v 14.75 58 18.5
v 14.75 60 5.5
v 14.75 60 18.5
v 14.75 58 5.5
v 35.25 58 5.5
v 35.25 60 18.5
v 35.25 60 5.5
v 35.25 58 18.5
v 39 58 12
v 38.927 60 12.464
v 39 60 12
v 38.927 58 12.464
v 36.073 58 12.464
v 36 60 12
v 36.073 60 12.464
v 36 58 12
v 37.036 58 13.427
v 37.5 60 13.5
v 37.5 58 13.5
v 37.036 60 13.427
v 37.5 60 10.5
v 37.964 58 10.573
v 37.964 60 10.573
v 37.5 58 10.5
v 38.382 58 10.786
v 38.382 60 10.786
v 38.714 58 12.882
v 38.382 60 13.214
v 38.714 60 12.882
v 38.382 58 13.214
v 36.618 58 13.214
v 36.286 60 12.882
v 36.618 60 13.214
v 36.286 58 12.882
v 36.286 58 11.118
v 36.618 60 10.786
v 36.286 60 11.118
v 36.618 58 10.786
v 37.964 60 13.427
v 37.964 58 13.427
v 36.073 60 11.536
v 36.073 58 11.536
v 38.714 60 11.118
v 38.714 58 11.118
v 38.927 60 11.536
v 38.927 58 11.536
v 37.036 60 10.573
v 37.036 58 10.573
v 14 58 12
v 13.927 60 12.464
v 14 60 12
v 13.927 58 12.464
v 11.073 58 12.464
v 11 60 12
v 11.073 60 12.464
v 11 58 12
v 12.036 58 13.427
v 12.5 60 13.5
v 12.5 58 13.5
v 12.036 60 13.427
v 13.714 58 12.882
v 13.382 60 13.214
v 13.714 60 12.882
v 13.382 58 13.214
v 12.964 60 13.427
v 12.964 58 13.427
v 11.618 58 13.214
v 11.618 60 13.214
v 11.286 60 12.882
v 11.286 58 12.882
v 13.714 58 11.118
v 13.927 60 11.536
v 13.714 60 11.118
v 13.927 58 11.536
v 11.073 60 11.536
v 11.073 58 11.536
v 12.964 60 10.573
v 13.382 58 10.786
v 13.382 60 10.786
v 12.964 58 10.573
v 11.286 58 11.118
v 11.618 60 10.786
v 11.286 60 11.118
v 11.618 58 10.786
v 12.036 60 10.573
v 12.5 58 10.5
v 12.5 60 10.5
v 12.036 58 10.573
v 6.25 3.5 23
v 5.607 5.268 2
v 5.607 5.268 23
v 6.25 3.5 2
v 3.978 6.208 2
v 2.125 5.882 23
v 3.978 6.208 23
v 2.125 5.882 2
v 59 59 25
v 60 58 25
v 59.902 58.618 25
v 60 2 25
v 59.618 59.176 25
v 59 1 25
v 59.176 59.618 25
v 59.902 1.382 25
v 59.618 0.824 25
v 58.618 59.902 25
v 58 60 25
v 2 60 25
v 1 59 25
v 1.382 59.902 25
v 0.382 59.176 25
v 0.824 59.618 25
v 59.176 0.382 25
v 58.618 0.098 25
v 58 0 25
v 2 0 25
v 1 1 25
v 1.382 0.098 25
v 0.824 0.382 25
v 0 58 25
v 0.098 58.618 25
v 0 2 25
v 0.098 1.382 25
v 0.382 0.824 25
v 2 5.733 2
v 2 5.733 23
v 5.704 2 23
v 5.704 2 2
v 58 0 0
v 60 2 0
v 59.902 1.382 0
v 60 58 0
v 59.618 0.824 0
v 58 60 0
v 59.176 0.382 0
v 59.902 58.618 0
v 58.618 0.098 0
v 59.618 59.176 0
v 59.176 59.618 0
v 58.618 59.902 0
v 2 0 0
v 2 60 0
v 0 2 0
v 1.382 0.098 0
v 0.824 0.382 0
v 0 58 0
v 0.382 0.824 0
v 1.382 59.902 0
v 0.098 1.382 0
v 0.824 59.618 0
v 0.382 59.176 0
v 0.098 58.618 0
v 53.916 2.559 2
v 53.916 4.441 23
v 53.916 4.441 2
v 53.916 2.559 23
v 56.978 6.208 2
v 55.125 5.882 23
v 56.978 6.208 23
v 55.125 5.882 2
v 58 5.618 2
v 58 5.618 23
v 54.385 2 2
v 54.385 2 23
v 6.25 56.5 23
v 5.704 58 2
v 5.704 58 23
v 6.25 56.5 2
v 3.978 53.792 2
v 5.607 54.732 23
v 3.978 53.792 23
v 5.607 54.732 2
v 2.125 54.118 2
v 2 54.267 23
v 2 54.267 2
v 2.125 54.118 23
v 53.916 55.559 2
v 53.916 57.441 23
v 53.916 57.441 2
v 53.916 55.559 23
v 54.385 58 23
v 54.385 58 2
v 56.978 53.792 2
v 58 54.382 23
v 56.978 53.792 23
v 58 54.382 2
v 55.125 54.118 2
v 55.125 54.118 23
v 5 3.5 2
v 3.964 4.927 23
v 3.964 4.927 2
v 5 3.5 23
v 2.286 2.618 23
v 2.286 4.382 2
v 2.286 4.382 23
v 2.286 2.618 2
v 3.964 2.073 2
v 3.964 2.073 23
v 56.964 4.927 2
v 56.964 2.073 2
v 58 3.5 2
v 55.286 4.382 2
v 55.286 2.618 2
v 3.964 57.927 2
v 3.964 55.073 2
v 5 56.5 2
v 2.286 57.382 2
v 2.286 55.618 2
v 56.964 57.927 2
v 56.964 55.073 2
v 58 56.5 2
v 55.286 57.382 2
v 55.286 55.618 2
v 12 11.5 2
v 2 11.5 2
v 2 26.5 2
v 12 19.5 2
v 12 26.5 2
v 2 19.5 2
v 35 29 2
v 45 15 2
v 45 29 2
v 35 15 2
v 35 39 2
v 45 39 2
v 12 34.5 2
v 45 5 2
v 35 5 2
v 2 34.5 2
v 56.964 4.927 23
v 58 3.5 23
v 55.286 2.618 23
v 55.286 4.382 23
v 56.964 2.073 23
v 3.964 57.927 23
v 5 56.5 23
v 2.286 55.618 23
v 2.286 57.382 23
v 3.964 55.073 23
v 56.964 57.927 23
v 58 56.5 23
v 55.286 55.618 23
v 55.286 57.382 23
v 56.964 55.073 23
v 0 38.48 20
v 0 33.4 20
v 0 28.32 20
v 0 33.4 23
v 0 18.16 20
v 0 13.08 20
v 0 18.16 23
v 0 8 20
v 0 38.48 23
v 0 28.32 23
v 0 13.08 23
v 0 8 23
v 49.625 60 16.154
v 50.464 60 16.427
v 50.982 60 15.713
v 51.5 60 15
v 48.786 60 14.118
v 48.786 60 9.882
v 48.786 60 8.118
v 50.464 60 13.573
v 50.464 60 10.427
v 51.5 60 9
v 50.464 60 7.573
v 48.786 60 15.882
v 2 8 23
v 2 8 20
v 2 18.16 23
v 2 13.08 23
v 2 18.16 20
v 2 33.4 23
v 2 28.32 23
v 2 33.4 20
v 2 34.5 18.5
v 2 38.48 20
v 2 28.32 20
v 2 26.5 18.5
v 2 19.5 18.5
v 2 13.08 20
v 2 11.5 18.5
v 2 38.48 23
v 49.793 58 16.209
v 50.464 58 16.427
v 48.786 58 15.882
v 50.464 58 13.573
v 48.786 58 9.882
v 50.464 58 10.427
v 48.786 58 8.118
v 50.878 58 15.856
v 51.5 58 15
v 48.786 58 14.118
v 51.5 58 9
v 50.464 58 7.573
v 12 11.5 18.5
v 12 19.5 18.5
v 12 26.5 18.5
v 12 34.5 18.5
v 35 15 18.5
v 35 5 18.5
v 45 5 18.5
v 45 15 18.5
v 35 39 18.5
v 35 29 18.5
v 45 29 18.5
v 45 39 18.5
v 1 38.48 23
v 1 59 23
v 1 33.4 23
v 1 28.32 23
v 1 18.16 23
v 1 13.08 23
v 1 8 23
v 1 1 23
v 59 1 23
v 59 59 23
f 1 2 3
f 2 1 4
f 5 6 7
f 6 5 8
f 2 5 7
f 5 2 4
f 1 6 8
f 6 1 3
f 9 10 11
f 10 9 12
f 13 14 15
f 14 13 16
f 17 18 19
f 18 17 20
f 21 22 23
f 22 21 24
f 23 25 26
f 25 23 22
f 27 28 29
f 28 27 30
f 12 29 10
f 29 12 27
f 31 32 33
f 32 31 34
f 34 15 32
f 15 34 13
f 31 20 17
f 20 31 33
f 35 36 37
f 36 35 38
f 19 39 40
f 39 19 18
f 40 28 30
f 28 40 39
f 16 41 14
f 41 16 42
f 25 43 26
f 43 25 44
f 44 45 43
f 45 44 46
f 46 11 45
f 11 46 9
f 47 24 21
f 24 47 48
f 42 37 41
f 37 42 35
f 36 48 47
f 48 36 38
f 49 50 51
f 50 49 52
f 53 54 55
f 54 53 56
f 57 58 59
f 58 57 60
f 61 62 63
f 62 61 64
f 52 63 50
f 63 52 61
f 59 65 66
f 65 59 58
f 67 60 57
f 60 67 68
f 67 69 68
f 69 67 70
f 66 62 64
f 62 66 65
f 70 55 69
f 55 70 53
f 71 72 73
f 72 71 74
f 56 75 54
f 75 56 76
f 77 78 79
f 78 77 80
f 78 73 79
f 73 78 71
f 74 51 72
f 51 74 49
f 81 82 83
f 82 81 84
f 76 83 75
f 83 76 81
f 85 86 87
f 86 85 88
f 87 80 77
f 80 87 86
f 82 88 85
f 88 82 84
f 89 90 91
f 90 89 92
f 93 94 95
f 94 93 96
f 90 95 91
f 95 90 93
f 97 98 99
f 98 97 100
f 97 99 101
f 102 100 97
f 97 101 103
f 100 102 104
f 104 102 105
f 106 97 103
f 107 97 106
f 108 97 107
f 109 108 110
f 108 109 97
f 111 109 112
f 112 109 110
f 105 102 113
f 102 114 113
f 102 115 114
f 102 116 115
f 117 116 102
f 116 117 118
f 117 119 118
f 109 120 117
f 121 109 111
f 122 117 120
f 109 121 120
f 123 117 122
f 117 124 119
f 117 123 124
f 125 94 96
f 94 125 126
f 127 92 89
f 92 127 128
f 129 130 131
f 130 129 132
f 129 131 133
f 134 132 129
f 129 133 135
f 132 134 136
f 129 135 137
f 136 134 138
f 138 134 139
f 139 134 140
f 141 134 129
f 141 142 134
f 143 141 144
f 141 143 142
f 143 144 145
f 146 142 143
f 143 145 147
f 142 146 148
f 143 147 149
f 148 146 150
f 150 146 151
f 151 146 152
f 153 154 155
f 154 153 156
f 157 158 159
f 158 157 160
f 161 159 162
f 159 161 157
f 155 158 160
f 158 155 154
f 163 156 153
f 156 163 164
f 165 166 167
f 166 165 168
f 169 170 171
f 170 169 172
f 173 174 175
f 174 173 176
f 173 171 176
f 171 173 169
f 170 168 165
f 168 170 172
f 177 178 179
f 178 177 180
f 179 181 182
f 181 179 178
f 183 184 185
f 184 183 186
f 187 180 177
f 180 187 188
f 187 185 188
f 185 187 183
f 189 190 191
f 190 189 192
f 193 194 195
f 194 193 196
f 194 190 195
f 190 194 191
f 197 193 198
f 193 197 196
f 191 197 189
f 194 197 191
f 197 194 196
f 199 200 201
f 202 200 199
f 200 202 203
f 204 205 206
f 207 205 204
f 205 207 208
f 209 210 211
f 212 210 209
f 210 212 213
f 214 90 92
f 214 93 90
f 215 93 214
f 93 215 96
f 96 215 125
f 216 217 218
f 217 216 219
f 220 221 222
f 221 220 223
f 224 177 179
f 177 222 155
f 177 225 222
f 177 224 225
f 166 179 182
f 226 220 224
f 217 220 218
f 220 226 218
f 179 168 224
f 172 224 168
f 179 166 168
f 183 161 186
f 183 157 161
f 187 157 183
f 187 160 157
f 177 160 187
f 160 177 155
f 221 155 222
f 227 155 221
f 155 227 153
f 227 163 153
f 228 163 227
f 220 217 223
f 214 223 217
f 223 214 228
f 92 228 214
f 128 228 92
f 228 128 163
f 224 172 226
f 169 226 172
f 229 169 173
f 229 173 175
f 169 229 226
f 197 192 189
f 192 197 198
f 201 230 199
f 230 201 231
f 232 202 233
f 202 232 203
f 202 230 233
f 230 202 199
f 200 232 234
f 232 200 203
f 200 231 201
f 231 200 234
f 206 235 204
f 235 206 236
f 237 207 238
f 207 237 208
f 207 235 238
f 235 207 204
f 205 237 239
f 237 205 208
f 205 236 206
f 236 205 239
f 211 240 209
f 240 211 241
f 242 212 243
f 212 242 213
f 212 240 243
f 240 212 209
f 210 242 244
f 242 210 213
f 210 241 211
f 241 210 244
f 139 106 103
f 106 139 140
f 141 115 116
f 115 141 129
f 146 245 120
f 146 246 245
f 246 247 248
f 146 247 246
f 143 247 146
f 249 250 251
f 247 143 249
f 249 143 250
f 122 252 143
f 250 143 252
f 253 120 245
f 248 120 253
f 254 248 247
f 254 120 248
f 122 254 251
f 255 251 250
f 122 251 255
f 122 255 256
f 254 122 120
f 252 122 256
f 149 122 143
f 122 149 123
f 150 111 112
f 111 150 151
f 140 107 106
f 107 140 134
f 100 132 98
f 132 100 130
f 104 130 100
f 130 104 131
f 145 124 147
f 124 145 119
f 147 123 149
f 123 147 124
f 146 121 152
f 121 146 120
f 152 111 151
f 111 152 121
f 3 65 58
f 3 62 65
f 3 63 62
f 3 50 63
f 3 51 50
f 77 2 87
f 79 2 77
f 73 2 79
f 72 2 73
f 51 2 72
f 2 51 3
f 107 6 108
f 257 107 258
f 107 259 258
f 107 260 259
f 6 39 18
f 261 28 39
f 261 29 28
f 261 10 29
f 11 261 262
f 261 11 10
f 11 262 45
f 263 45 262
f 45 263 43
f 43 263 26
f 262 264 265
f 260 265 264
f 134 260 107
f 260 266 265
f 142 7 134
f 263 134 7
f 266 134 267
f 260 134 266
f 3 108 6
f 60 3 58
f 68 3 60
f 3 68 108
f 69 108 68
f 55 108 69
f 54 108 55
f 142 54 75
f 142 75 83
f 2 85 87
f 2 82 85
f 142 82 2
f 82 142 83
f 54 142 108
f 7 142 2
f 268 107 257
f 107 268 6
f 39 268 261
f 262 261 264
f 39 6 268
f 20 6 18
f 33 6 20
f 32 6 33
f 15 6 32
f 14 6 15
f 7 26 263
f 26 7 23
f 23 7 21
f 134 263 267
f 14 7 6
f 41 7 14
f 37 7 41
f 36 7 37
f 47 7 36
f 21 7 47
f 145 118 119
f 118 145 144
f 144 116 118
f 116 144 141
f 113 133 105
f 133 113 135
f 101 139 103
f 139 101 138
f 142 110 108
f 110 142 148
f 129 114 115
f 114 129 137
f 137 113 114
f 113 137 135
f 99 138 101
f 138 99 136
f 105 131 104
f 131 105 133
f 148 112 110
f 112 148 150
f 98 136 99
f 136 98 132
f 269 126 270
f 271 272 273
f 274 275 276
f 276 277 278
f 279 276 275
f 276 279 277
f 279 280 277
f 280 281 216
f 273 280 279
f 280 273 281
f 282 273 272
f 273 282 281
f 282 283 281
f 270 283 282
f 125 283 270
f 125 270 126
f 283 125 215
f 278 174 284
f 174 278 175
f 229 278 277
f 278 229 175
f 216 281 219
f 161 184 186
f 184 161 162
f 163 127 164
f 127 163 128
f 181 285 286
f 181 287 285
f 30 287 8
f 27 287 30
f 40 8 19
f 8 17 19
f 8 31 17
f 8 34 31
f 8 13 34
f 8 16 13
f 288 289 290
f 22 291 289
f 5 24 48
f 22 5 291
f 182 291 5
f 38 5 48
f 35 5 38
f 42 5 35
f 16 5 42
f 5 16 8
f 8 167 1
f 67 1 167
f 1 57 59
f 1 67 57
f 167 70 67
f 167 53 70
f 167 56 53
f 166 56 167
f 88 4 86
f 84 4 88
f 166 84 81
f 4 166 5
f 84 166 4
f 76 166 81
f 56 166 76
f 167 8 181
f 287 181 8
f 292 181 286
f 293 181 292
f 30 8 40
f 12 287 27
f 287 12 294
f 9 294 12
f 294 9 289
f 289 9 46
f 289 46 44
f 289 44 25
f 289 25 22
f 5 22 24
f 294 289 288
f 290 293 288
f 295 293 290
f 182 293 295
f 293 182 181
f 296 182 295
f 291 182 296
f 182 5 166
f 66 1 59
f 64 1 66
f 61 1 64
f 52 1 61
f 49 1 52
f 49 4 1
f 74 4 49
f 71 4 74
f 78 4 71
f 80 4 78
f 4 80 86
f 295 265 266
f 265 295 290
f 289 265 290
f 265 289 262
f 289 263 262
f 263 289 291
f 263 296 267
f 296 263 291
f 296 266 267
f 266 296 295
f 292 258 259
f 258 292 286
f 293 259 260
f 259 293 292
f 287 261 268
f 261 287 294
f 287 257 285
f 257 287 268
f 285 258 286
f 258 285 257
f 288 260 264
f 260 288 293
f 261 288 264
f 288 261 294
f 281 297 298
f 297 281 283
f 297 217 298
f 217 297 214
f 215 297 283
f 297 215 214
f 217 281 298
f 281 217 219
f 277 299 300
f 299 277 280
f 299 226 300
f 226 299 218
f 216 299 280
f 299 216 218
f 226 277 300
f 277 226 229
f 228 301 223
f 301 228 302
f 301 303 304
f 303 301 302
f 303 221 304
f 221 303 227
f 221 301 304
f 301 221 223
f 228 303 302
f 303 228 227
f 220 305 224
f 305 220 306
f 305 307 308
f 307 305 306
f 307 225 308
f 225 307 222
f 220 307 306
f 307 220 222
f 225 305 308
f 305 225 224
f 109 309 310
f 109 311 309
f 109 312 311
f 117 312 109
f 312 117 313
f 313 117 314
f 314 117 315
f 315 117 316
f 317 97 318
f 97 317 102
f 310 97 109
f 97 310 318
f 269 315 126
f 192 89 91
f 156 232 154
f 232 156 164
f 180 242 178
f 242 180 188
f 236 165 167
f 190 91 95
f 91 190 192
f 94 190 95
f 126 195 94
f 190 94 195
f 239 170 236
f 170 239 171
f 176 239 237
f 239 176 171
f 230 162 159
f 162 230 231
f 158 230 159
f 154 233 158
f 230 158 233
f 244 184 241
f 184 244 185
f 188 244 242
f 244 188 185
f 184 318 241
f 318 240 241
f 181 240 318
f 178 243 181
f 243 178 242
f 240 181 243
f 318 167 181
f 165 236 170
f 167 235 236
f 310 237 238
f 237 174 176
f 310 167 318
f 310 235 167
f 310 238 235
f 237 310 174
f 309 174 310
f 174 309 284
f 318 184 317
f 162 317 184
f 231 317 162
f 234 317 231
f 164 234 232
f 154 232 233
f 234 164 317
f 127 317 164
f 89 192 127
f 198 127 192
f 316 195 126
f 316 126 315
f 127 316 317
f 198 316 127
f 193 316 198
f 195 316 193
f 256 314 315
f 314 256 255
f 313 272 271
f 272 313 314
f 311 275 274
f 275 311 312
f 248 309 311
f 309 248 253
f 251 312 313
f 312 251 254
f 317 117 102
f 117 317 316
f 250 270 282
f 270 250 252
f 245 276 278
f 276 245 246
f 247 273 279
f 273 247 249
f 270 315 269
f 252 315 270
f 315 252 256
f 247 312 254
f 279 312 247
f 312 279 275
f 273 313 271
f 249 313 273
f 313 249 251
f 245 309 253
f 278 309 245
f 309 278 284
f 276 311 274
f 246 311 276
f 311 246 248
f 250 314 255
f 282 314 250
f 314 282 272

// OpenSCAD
L = 60;         //Länge
B = 60;         //Breite
H = 25;         //Höhe
D = 2;        //Wanddicke

module sub_d ()
{
    cube([20.5,13,10],center=true);
    translate([12.5,0,0])cylinder(d=3,h=10,$fn=20,center=true);
    translate([-12.5,0,0])cylinder(d=3,h=10,$fn=20,center=true);  
}

module deckel (tol)
{
    
    
        difference()
        {
            translate([D/2,D/2,H-D])cube([B-tol-D,L-tol-D,D-tol]);
            
            translate([2.5+1,2.5+1,D])cylinder(d=3,h=H);
            translate([L-(2.5+1),2.5+1,D])cylinder(d=3,h=H);
            translate([2.5+1,B-(2.5+1),D])cylinder(d=3,h=H);
            translate([L-(2.5+1),B-(2.5+1),D])cylinder(d=3,h=H);
            
            translate([46,21,H-D-3])cylinder(d=8,h=10);
            translate([46,21,H-D])cube([15,15,2],center=true);
        }
            
}

module platine ()
{
    cube([2.54*15,2.54*12,1]);
    translate([-9,4*2.54,1])cube([12,2.54*4,3]);
    translate([-9,10*2.54,1])cube([12,2.54*2,3]);
    translate([-9,0*2.54,1])cube([12,2.54*2,3]);
    
    
}

module box ()
{
    difference()
    {
        union()
        {
            difference()
            {
                
                hull(){
                    translate([2,2,0])cylinder(r=2,h=H,$fn=20);
                    translate([B-2,2,0])cylinder(r=2,h=H,$fn=20);
                    translate([2,L-2,0])cylinder(r=2,h=H,$fn=20);
                    translate([L-2,B-2,0])cylinder(r=2,h=H,$fn=20);
                }
               
                translate([D,D,D])cube([B-D*2,L-D*2,H]);  
                translate([25,L,12])rotate([90,0,0])sub_d();
                translate([50,L,9])rotate([90,0,0])cylinder(d=3,h=20,center=true);
                translate([50,L,9+6])rotate([90,0,0])cylinder(d=3,h=20,center=true);
                
            }
            
            difference()
            {
                union()
                {
                    translate([2.5+1,2.5+1,0])cylinder(d=5.5,h=H);
                    translate([L-(2.5+1),2.5+1,0])cylinder(d=5.5,h=H);
                    translate([2.5+1,B-(2.5+1),0])cylinder(d=5.5,h=H);
                    translate([L-(2.5+1),B-(2.5+1),0])cylinder(d=5.5,h=H);
                }
                    translate([2.5+1,2.5+1,D])cylinder(d=3,h=H);
                    translate([L-(2.5+1),2.5+1,D])cylinder(d=3,h=H);
                    translate([2.5+1,B-(2.5+1),D])cylinder(d=3,h=H);
                    translate([L-(2.5+1),B-(2.5+1),D])cylinder(d=3,h=H);
            }
            
            translate([2,11.5,0])cube([10,8,18.5]);
            translate([2,26.5,0])cube([10,8,18.5]);
            translate([35,5,0])cube([10,10,18.5]);
            translate([35,29,0])cube([10,10,18.5]);
        }     
        deckel(0);   
        translate([3,8,23-4])platine();    
    }   
}

box();
//deckel(0.6);
